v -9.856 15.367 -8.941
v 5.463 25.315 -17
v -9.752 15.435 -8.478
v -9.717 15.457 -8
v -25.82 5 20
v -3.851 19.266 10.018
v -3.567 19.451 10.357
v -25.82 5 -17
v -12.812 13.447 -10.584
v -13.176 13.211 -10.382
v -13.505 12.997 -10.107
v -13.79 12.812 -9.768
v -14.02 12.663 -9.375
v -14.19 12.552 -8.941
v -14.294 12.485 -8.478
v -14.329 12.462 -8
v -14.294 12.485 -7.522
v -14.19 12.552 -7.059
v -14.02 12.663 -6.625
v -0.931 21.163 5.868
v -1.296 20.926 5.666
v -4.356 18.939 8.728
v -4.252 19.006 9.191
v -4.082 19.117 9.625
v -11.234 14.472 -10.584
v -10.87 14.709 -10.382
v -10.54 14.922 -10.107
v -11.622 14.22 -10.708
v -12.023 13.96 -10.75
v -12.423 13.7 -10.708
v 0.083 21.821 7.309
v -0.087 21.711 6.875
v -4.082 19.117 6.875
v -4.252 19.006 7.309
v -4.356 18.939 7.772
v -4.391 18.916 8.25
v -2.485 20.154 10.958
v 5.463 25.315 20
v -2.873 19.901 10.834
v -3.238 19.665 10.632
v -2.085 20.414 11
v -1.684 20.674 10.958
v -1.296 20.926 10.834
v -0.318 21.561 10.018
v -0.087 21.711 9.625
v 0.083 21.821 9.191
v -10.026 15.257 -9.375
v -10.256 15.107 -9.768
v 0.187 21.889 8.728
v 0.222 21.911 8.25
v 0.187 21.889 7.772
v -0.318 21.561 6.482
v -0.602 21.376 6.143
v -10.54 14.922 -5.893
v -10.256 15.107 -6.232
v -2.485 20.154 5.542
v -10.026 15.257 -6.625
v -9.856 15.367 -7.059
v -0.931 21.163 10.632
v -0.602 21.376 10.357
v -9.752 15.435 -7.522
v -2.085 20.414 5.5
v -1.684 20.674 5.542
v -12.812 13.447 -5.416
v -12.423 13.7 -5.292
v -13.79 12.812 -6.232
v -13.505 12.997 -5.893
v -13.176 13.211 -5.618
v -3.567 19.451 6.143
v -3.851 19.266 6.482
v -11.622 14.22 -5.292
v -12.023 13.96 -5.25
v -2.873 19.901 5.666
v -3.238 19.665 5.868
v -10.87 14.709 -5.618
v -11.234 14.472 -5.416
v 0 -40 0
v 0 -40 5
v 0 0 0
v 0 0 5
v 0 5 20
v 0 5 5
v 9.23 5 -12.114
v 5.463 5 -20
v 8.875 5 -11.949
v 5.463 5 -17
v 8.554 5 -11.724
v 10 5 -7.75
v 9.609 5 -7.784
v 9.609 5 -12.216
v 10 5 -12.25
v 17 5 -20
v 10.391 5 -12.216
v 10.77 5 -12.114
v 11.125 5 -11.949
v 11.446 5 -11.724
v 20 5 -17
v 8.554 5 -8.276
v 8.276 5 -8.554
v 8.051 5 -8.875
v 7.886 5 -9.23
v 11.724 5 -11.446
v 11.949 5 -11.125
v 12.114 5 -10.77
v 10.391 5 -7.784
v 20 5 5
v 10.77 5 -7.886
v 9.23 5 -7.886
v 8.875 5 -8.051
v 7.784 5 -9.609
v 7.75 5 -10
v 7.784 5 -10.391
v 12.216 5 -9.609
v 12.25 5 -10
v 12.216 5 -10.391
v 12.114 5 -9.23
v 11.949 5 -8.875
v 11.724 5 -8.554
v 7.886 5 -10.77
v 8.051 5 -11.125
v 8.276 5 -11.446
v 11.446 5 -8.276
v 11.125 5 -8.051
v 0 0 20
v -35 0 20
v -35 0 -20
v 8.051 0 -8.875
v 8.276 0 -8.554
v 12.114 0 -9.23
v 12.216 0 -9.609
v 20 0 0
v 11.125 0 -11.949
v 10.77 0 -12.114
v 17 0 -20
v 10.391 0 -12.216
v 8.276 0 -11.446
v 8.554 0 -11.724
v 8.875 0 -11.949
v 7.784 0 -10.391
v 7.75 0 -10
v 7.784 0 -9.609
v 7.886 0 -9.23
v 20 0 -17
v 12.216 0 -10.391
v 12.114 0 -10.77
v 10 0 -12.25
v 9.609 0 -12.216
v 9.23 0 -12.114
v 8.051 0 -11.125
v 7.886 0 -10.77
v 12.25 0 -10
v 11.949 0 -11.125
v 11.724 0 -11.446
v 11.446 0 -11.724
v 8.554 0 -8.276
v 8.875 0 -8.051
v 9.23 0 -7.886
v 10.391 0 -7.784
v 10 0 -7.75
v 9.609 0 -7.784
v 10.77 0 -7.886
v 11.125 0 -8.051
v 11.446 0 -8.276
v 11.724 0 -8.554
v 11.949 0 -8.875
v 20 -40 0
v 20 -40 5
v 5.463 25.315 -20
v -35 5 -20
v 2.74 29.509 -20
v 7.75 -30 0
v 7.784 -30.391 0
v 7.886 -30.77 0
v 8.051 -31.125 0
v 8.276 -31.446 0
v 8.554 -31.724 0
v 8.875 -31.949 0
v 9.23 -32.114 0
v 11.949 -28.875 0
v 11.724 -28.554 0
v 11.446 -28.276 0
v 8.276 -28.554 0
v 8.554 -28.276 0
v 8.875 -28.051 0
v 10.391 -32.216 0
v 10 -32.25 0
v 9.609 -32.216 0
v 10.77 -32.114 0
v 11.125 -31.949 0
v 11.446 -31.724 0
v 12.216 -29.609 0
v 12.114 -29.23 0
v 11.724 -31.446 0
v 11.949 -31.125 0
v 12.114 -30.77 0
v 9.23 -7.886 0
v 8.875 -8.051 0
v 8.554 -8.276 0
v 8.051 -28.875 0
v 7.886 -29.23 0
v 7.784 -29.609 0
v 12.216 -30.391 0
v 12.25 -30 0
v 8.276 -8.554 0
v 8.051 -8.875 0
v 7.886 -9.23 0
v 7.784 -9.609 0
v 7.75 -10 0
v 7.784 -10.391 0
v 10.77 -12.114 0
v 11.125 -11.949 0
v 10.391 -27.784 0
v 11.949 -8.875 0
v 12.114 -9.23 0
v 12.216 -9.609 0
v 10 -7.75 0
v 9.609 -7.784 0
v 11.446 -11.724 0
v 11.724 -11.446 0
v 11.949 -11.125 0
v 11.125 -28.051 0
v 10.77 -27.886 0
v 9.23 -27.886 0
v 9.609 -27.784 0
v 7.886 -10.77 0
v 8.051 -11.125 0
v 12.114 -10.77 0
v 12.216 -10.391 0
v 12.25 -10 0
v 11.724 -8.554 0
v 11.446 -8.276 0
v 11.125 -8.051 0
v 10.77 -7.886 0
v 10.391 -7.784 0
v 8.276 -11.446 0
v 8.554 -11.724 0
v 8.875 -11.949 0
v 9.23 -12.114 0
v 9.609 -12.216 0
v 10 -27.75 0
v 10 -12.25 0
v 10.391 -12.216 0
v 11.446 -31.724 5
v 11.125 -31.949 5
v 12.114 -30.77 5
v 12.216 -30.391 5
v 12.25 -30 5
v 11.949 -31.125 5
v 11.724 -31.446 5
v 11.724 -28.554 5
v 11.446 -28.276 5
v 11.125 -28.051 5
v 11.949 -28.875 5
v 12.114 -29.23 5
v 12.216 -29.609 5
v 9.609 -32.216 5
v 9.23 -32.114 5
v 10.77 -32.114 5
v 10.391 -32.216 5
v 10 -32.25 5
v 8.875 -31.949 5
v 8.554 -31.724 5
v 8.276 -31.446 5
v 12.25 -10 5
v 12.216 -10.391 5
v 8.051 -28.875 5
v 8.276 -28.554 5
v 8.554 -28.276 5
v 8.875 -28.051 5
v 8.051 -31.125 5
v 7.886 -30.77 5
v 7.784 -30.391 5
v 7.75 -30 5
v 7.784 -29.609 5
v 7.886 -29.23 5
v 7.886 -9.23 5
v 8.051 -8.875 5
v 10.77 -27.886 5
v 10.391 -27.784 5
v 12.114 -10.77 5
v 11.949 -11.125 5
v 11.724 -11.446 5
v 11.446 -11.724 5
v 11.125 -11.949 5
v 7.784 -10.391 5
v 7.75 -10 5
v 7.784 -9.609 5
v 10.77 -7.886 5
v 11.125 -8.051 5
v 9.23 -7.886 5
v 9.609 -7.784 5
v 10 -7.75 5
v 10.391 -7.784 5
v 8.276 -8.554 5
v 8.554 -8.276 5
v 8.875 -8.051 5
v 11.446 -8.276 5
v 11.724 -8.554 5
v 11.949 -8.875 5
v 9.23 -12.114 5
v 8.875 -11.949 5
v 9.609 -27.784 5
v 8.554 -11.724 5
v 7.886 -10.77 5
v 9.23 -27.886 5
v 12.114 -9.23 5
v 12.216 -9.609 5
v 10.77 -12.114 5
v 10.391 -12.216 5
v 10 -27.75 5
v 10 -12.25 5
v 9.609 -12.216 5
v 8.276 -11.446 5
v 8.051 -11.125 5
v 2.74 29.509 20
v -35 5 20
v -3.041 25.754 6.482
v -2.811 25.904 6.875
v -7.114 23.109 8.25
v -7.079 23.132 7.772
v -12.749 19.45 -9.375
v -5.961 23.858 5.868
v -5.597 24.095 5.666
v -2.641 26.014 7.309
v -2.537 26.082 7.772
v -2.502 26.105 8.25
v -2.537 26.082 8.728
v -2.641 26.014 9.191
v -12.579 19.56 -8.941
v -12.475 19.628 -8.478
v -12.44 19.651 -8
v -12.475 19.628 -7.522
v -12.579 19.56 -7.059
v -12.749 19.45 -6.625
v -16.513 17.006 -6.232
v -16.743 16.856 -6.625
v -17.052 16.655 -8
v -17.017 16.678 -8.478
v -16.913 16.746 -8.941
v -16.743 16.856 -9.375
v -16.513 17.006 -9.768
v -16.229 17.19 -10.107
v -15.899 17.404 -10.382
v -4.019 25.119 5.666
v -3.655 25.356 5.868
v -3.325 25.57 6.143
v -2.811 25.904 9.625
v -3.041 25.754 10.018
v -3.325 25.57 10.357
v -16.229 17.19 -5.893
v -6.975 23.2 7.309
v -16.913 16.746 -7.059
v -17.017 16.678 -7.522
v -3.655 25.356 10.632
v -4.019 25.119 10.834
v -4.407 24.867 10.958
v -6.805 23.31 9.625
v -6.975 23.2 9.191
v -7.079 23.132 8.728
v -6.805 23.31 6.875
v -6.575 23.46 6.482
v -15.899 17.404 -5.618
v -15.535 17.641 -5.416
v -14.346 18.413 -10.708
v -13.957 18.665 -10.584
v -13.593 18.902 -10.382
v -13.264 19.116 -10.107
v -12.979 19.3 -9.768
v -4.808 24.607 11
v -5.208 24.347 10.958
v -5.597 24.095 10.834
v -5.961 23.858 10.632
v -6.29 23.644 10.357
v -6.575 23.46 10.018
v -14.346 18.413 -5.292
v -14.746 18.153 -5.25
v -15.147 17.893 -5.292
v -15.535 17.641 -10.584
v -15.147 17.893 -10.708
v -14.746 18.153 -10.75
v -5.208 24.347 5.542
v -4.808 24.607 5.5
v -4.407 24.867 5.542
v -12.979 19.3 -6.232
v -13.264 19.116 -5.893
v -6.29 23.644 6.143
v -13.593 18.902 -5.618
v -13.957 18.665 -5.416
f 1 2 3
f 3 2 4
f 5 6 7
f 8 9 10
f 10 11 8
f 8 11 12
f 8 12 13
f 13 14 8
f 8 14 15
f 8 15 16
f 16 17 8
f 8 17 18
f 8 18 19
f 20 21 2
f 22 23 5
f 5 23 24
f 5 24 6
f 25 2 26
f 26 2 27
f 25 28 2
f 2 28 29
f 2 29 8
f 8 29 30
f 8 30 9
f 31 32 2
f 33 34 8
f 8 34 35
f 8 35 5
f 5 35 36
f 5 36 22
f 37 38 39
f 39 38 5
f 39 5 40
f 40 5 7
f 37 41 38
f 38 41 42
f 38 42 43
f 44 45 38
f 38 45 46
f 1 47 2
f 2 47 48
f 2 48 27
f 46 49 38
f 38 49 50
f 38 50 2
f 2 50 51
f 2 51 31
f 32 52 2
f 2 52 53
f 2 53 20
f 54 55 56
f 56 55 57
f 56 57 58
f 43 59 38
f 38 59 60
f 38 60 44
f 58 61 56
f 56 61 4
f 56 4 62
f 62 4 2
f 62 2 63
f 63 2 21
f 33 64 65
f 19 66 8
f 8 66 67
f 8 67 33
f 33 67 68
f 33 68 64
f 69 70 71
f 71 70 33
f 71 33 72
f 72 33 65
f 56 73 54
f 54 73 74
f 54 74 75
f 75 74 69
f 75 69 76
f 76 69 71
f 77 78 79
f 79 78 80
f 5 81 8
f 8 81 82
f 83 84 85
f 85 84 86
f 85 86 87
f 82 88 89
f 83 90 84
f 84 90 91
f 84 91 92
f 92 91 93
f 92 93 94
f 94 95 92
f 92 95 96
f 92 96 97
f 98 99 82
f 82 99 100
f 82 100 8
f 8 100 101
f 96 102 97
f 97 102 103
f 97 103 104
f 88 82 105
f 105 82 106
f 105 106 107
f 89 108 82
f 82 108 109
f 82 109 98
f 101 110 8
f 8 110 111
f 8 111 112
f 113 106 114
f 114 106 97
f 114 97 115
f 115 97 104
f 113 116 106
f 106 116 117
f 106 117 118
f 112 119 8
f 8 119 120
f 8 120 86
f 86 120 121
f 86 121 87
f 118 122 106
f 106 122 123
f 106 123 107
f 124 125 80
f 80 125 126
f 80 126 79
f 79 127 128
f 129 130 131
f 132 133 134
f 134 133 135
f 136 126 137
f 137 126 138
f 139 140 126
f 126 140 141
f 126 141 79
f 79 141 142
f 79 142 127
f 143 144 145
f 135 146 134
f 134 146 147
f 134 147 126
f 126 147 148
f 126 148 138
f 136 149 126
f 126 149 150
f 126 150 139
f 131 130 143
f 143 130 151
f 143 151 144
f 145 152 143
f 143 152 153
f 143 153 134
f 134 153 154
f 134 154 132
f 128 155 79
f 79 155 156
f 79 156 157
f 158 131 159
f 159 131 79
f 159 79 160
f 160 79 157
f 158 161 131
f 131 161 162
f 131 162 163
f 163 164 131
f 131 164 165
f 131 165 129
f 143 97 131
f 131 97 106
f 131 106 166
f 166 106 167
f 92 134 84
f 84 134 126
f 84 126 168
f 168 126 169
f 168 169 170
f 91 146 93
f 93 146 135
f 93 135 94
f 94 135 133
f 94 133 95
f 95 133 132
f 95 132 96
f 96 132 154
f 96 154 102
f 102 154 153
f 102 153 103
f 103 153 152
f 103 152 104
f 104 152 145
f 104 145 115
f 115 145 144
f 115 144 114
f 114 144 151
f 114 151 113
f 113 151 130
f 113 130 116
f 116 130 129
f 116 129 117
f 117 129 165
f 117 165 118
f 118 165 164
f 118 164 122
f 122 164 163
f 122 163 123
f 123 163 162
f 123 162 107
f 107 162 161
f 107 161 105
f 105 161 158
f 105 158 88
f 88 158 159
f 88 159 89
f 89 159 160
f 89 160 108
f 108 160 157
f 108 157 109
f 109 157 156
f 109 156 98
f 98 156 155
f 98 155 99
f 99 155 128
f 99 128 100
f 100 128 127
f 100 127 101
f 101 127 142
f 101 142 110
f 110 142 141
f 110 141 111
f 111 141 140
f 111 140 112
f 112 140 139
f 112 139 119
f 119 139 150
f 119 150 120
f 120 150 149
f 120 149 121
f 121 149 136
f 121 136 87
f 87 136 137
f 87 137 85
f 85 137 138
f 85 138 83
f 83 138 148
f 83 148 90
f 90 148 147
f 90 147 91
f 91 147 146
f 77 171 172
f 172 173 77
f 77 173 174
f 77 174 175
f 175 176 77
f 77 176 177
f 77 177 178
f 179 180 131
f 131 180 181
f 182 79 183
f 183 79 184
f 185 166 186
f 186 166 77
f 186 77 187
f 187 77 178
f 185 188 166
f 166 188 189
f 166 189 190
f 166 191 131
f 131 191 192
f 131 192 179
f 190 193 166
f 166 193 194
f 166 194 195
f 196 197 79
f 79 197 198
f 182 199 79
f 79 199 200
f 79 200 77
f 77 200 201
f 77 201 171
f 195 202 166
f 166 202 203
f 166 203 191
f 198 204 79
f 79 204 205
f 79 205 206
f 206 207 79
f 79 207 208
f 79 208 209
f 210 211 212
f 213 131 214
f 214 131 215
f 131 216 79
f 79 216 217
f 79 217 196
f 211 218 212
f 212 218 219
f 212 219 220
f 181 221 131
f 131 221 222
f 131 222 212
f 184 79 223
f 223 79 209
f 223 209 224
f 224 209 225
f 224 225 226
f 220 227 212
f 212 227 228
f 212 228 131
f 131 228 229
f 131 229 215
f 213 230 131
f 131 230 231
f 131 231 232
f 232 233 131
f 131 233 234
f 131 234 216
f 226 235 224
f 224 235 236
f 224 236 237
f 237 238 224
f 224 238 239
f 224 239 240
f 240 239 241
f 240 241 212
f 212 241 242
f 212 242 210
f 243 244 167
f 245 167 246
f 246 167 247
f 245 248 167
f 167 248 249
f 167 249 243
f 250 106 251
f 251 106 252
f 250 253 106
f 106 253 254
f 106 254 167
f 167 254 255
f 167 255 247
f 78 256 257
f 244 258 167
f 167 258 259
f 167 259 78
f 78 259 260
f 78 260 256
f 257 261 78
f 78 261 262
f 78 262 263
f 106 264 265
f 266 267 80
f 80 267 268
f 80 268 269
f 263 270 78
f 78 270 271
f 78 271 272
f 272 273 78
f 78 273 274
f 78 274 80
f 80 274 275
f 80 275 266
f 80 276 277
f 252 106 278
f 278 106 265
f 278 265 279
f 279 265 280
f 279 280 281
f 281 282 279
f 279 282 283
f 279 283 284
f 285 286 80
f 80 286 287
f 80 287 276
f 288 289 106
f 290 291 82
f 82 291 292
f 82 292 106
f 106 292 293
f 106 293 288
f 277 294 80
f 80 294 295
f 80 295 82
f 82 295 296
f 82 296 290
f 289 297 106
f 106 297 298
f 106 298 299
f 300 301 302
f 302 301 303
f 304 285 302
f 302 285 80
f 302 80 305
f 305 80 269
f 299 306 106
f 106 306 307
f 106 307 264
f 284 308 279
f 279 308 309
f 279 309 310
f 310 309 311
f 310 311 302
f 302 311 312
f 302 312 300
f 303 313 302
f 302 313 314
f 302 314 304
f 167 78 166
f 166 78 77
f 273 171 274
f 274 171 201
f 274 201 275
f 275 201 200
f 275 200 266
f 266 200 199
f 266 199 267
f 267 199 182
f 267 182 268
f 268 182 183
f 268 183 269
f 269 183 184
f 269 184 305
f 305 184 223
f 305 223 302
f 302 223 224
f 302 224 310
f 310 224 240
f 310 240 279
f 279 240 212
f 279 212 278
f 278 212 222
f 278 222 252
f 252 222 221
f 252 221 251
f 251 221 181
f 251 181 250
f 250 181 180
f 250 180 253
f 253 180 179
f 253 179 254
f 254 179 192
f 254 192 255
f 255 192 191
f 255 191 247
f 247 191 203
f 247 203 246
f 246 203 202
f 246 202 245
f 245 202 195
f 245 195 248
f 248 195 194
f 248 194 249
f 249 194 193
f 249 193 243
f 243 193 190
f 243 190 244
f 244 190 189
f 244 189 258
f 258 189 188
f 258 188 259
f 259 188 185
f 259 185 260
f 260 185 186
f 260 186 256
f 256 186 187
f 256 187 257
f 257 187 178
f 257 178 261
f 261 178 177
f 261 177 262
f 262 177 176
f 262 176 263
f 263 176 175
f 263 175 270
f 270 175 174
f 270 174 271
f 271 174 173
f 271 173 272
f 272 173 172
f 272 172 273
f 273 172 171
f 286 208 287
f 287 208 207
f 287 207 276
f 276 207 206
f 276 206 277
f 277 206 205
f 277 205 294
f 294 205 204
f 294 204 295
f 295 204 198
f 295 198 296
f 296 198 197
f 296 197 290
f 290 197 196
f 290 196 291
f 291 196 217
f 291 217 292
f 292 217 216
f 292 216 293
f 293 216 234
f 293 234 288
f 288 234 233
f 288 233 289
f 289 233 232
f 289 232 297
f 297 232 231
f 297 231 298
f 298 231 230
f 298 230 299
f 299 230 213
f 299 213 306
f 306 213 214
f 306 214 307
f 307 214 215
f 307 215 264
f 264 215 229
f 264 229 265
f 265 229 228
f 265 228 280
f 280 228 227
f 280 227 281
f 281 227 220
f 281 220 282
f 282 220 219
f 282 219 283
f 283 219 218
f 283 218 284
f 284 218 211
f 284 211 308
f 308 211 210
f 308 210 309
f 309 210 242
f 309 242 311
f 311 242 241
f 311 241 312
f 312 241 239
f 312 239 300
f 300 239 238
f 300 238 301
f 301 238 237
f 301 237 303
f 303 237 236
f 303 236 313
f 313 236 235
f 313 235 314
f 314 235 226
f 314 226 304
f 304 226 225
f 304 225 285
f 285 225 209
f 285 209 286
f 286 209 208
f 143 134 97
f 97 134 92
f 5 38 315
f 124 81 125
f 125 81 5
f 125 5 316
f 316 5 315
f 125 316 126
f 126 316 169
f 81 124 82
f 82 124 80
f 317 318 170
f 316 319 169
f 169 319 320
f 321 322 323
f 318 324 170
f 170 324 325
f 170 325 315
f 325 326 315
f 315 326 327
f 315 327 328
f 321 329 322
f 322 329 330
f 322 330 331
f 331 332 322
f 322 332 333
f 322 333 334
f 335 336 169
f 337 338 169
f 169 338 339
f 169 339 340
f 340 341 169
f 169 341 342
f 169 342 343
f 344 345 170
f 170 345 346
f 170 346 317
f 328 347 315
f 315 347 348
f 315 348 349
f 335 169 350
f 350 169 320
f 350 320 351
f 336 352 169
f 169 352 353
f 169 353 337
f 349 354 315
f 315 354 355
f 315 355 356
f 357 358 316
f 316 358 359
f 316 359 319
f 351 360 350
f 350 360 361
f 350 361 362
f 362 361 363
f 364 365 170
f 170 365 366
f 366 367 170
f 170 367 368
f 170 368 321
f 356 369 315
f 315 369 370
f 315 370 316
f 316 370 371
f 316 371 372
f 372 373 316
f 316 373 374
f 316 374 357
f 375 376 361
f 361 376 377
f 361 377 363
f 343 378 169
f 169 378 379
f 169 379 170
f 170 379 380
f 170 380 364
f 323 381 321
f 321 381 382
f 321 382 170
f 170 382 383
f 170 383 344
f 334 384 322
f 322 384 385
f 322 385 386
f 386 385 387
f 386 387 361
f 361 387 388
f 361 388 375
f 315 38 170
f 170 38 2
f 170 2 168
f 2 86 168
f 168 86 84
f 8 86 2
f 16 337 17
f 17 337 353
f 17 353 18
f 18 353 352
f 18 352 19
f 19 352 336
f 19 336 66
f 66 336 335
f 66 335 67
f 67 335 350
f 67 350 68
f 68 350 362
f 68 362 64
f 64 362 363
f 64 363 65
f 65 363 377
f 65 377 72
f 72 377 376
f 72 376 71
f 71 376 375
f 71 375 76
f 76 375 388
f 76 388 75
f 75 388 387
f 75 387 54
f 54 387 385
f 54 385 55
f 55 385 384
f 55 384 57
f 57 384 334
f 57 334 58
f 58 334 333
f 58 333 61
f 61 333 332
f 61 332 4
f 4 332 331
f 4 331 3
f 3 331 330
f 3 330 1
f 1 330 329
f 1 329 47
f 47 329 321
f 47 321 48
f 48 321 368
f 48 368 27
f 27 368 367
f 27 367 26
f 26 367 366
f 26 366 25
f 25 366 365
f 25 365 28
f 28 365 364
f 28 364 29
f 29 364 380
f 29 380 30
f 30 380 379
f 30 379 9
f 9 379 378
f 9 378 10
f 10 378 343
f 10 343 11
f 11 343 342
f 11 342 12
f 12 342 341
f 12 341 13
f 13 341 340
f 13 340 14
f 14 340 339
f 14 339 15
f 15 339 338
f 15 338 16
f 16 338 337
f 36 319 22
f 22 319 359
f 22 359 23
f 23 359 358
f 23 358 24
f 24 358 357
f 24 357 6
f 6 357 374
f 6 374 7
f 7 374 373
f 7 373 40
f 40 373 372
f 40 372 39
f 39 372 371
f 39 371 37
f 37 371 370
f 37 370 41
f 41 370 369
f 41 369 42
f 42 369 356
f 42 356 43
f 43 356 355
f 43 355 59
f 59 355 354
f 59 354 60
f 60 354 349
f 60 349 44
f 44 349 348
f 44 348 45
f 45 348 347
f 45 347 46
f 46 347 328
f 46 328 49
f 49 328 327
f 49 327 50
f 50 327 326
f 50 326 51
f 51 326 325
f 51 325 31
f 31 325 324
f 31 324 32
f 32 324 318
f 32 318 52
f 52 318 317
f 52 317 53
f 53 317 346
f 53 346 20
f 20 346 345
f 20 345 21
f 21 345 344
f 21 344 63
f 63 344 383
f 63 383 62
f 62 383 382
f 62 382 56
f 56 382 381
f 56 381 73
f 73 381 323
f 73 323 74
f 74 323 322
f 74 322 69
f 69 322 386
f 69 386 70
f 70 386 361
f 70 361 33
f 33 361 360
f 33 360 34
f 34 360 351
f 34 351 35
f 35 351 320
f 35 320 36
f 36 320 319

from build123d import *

# Parameters (mm, degrees)
SKETCH1_W           = 20
SKETCH1_H           = 20
SKETCH1_R           = 2.25
BOSS_EXTRUDE1_DEPTH = 5
SKETCH2_W           = 20
SKETCH2_H           = 45
SKETCH2_R           = 2.25
BOSS_EXTRUDE2_DEPTH = 5
CHAMFER1_SIZE       = 3
SKETCH3_W           = 40
SKETCH3_H           = 5
BOSS_EXTRUDE3_DEPTH = 35
BOSS_EXTRUDE4_DEPTH = 40
BOSS_EXTRUDE5_DEPTH = 3
CUT_EXTRUDE1_REACH  = 72.766
SKETCH6_R           = 2.75


with BuildPart() as part:
    # Sketch1 → Boss-Extrude1 (new body)
    with BuildSketch(Plane(origin=(0, 0, 0), x_dir=(1, 0, 0), z_dir=(0, 1, 0))):
        with Locations((10, 10)):
            Rectangle(SKETCH1_W, SKETCH1_H)
        with Locations((10, 10)):
            Circle(SKETCH1_R, mode=Mode.SUBTRACT)
    extrude(amount=BOSS_EXTRUDE1_DEPTH)

    # Sketch2 → Boss-Extrude2 (add)
    with BuildSketch(Plane.XY):
        with Locations((10, -17.5)):
            Rectangle(SKETCH2_W, SKETCH2_H)
        with Locations((10, -30)):
            Circle(SKETCH2_R, mode=Mode.SUBTRACT)
        with Locations((10, -10)):
            Circle(SKETCH2_R, mode=Mode.SUBTRACT)
    extrude(amount=BOSS_EXTRUDE2_DEPTH)

    # Chamfer1
    chamfer1_edges = [part.edges().sort_by_distance(p)[0] for p in [
        (20, 2.5, -20),
    ]]
    chamfer(chamfer1_edges, length=CHAMFER1_SIZE)

    # Sketch3 → Boss-Extrude3 (add)
    with BuildSketch(Plane.ZY):
        with Locations((0, 2.5)):
            Rectangle(SKETCH3_W, SKETCH3_H)
    extrude(amount=BOSS_EXTRUDE3_DEPTH)

    # Sketch4 → Boss-Extrude4 (add)
    with BuildSketch(Plane.XY.offset(20)):
        Polygon((-35, 5), (2.740175558, 29.508756576), (5.463370733, 25.315403736), (-25.819607706, 5), align=None)
    extrude(amount=-BOSS_EXTRUDE4_DEPTH)

    # Sketch5 → Boss-Extrude5 (add)
    with BuildSketch(Plane(origin=(0, 0, -20), x_dir=(-1, 0, 0), z_dir=(0, 0, -1))):
        Polygon((-5.463370733, 25.315403736), (-5.463370733, 5), (25.819607706, 5), align=None)
    extrude(amount=-BOSS_EXTRUDE5_DEPTH)

    # Sketch6 → Cut-Extrude1 (cut, up to next)
    with BuildSketch(Plane(origin=(-12.66597239, 19.503887116, 0), x_dir=(0.8386705679454272, 0.5446390350150224, 0), z_dir=(-0.5446390350150224, 0.8386705679454272, 0)), mode=Mode.PRIVATE) as cut_extrude1_sk1:
        with Locations((9.369725297, -8.25)):
            Circle(SKETCH6_R)
    cut_extrude1_tool1 = extrude(cut_extrude1_sk1.sketch, amount=-CUT_EXTRUDE1_REACH, mode=Mode.PRIVATE) & part.part
    # Sketch6 → Cut-Extrude1 (cut, up to next)
    with BuildSketch(Plane(origin=(-12.66597239, 19.503887116, 0), x_dir=(0.8386705679454272, 0.5446390350150224, 0), z_dir=(-0.5446390350150224, 0.8386705679454272, 0)), mode=Mode.PRIVATE) as cut_extrude1_sk2:
        with Locations((-2.480274703, 8)):
            Circle(SKETCH6_R)
    cut_extrude1_tool2 = extrude(cut_extrude1_sk2.sketch, amount=-CUT_EXTRUDE1_REACH, mode=Mode.PRIVATE) & part.part
    add(cut_extrude1_tool1.solids().sort_by_distance((-4.80786, 24.607005, 8.25))[0], mode=Mode.SUBTRACT)
    add(cut_extrude1_tool2.solids().sort_by_distance((-14.746106, 18.153033, -8))[0], mode=Mode.SUBTRACT)


solid = part.part
